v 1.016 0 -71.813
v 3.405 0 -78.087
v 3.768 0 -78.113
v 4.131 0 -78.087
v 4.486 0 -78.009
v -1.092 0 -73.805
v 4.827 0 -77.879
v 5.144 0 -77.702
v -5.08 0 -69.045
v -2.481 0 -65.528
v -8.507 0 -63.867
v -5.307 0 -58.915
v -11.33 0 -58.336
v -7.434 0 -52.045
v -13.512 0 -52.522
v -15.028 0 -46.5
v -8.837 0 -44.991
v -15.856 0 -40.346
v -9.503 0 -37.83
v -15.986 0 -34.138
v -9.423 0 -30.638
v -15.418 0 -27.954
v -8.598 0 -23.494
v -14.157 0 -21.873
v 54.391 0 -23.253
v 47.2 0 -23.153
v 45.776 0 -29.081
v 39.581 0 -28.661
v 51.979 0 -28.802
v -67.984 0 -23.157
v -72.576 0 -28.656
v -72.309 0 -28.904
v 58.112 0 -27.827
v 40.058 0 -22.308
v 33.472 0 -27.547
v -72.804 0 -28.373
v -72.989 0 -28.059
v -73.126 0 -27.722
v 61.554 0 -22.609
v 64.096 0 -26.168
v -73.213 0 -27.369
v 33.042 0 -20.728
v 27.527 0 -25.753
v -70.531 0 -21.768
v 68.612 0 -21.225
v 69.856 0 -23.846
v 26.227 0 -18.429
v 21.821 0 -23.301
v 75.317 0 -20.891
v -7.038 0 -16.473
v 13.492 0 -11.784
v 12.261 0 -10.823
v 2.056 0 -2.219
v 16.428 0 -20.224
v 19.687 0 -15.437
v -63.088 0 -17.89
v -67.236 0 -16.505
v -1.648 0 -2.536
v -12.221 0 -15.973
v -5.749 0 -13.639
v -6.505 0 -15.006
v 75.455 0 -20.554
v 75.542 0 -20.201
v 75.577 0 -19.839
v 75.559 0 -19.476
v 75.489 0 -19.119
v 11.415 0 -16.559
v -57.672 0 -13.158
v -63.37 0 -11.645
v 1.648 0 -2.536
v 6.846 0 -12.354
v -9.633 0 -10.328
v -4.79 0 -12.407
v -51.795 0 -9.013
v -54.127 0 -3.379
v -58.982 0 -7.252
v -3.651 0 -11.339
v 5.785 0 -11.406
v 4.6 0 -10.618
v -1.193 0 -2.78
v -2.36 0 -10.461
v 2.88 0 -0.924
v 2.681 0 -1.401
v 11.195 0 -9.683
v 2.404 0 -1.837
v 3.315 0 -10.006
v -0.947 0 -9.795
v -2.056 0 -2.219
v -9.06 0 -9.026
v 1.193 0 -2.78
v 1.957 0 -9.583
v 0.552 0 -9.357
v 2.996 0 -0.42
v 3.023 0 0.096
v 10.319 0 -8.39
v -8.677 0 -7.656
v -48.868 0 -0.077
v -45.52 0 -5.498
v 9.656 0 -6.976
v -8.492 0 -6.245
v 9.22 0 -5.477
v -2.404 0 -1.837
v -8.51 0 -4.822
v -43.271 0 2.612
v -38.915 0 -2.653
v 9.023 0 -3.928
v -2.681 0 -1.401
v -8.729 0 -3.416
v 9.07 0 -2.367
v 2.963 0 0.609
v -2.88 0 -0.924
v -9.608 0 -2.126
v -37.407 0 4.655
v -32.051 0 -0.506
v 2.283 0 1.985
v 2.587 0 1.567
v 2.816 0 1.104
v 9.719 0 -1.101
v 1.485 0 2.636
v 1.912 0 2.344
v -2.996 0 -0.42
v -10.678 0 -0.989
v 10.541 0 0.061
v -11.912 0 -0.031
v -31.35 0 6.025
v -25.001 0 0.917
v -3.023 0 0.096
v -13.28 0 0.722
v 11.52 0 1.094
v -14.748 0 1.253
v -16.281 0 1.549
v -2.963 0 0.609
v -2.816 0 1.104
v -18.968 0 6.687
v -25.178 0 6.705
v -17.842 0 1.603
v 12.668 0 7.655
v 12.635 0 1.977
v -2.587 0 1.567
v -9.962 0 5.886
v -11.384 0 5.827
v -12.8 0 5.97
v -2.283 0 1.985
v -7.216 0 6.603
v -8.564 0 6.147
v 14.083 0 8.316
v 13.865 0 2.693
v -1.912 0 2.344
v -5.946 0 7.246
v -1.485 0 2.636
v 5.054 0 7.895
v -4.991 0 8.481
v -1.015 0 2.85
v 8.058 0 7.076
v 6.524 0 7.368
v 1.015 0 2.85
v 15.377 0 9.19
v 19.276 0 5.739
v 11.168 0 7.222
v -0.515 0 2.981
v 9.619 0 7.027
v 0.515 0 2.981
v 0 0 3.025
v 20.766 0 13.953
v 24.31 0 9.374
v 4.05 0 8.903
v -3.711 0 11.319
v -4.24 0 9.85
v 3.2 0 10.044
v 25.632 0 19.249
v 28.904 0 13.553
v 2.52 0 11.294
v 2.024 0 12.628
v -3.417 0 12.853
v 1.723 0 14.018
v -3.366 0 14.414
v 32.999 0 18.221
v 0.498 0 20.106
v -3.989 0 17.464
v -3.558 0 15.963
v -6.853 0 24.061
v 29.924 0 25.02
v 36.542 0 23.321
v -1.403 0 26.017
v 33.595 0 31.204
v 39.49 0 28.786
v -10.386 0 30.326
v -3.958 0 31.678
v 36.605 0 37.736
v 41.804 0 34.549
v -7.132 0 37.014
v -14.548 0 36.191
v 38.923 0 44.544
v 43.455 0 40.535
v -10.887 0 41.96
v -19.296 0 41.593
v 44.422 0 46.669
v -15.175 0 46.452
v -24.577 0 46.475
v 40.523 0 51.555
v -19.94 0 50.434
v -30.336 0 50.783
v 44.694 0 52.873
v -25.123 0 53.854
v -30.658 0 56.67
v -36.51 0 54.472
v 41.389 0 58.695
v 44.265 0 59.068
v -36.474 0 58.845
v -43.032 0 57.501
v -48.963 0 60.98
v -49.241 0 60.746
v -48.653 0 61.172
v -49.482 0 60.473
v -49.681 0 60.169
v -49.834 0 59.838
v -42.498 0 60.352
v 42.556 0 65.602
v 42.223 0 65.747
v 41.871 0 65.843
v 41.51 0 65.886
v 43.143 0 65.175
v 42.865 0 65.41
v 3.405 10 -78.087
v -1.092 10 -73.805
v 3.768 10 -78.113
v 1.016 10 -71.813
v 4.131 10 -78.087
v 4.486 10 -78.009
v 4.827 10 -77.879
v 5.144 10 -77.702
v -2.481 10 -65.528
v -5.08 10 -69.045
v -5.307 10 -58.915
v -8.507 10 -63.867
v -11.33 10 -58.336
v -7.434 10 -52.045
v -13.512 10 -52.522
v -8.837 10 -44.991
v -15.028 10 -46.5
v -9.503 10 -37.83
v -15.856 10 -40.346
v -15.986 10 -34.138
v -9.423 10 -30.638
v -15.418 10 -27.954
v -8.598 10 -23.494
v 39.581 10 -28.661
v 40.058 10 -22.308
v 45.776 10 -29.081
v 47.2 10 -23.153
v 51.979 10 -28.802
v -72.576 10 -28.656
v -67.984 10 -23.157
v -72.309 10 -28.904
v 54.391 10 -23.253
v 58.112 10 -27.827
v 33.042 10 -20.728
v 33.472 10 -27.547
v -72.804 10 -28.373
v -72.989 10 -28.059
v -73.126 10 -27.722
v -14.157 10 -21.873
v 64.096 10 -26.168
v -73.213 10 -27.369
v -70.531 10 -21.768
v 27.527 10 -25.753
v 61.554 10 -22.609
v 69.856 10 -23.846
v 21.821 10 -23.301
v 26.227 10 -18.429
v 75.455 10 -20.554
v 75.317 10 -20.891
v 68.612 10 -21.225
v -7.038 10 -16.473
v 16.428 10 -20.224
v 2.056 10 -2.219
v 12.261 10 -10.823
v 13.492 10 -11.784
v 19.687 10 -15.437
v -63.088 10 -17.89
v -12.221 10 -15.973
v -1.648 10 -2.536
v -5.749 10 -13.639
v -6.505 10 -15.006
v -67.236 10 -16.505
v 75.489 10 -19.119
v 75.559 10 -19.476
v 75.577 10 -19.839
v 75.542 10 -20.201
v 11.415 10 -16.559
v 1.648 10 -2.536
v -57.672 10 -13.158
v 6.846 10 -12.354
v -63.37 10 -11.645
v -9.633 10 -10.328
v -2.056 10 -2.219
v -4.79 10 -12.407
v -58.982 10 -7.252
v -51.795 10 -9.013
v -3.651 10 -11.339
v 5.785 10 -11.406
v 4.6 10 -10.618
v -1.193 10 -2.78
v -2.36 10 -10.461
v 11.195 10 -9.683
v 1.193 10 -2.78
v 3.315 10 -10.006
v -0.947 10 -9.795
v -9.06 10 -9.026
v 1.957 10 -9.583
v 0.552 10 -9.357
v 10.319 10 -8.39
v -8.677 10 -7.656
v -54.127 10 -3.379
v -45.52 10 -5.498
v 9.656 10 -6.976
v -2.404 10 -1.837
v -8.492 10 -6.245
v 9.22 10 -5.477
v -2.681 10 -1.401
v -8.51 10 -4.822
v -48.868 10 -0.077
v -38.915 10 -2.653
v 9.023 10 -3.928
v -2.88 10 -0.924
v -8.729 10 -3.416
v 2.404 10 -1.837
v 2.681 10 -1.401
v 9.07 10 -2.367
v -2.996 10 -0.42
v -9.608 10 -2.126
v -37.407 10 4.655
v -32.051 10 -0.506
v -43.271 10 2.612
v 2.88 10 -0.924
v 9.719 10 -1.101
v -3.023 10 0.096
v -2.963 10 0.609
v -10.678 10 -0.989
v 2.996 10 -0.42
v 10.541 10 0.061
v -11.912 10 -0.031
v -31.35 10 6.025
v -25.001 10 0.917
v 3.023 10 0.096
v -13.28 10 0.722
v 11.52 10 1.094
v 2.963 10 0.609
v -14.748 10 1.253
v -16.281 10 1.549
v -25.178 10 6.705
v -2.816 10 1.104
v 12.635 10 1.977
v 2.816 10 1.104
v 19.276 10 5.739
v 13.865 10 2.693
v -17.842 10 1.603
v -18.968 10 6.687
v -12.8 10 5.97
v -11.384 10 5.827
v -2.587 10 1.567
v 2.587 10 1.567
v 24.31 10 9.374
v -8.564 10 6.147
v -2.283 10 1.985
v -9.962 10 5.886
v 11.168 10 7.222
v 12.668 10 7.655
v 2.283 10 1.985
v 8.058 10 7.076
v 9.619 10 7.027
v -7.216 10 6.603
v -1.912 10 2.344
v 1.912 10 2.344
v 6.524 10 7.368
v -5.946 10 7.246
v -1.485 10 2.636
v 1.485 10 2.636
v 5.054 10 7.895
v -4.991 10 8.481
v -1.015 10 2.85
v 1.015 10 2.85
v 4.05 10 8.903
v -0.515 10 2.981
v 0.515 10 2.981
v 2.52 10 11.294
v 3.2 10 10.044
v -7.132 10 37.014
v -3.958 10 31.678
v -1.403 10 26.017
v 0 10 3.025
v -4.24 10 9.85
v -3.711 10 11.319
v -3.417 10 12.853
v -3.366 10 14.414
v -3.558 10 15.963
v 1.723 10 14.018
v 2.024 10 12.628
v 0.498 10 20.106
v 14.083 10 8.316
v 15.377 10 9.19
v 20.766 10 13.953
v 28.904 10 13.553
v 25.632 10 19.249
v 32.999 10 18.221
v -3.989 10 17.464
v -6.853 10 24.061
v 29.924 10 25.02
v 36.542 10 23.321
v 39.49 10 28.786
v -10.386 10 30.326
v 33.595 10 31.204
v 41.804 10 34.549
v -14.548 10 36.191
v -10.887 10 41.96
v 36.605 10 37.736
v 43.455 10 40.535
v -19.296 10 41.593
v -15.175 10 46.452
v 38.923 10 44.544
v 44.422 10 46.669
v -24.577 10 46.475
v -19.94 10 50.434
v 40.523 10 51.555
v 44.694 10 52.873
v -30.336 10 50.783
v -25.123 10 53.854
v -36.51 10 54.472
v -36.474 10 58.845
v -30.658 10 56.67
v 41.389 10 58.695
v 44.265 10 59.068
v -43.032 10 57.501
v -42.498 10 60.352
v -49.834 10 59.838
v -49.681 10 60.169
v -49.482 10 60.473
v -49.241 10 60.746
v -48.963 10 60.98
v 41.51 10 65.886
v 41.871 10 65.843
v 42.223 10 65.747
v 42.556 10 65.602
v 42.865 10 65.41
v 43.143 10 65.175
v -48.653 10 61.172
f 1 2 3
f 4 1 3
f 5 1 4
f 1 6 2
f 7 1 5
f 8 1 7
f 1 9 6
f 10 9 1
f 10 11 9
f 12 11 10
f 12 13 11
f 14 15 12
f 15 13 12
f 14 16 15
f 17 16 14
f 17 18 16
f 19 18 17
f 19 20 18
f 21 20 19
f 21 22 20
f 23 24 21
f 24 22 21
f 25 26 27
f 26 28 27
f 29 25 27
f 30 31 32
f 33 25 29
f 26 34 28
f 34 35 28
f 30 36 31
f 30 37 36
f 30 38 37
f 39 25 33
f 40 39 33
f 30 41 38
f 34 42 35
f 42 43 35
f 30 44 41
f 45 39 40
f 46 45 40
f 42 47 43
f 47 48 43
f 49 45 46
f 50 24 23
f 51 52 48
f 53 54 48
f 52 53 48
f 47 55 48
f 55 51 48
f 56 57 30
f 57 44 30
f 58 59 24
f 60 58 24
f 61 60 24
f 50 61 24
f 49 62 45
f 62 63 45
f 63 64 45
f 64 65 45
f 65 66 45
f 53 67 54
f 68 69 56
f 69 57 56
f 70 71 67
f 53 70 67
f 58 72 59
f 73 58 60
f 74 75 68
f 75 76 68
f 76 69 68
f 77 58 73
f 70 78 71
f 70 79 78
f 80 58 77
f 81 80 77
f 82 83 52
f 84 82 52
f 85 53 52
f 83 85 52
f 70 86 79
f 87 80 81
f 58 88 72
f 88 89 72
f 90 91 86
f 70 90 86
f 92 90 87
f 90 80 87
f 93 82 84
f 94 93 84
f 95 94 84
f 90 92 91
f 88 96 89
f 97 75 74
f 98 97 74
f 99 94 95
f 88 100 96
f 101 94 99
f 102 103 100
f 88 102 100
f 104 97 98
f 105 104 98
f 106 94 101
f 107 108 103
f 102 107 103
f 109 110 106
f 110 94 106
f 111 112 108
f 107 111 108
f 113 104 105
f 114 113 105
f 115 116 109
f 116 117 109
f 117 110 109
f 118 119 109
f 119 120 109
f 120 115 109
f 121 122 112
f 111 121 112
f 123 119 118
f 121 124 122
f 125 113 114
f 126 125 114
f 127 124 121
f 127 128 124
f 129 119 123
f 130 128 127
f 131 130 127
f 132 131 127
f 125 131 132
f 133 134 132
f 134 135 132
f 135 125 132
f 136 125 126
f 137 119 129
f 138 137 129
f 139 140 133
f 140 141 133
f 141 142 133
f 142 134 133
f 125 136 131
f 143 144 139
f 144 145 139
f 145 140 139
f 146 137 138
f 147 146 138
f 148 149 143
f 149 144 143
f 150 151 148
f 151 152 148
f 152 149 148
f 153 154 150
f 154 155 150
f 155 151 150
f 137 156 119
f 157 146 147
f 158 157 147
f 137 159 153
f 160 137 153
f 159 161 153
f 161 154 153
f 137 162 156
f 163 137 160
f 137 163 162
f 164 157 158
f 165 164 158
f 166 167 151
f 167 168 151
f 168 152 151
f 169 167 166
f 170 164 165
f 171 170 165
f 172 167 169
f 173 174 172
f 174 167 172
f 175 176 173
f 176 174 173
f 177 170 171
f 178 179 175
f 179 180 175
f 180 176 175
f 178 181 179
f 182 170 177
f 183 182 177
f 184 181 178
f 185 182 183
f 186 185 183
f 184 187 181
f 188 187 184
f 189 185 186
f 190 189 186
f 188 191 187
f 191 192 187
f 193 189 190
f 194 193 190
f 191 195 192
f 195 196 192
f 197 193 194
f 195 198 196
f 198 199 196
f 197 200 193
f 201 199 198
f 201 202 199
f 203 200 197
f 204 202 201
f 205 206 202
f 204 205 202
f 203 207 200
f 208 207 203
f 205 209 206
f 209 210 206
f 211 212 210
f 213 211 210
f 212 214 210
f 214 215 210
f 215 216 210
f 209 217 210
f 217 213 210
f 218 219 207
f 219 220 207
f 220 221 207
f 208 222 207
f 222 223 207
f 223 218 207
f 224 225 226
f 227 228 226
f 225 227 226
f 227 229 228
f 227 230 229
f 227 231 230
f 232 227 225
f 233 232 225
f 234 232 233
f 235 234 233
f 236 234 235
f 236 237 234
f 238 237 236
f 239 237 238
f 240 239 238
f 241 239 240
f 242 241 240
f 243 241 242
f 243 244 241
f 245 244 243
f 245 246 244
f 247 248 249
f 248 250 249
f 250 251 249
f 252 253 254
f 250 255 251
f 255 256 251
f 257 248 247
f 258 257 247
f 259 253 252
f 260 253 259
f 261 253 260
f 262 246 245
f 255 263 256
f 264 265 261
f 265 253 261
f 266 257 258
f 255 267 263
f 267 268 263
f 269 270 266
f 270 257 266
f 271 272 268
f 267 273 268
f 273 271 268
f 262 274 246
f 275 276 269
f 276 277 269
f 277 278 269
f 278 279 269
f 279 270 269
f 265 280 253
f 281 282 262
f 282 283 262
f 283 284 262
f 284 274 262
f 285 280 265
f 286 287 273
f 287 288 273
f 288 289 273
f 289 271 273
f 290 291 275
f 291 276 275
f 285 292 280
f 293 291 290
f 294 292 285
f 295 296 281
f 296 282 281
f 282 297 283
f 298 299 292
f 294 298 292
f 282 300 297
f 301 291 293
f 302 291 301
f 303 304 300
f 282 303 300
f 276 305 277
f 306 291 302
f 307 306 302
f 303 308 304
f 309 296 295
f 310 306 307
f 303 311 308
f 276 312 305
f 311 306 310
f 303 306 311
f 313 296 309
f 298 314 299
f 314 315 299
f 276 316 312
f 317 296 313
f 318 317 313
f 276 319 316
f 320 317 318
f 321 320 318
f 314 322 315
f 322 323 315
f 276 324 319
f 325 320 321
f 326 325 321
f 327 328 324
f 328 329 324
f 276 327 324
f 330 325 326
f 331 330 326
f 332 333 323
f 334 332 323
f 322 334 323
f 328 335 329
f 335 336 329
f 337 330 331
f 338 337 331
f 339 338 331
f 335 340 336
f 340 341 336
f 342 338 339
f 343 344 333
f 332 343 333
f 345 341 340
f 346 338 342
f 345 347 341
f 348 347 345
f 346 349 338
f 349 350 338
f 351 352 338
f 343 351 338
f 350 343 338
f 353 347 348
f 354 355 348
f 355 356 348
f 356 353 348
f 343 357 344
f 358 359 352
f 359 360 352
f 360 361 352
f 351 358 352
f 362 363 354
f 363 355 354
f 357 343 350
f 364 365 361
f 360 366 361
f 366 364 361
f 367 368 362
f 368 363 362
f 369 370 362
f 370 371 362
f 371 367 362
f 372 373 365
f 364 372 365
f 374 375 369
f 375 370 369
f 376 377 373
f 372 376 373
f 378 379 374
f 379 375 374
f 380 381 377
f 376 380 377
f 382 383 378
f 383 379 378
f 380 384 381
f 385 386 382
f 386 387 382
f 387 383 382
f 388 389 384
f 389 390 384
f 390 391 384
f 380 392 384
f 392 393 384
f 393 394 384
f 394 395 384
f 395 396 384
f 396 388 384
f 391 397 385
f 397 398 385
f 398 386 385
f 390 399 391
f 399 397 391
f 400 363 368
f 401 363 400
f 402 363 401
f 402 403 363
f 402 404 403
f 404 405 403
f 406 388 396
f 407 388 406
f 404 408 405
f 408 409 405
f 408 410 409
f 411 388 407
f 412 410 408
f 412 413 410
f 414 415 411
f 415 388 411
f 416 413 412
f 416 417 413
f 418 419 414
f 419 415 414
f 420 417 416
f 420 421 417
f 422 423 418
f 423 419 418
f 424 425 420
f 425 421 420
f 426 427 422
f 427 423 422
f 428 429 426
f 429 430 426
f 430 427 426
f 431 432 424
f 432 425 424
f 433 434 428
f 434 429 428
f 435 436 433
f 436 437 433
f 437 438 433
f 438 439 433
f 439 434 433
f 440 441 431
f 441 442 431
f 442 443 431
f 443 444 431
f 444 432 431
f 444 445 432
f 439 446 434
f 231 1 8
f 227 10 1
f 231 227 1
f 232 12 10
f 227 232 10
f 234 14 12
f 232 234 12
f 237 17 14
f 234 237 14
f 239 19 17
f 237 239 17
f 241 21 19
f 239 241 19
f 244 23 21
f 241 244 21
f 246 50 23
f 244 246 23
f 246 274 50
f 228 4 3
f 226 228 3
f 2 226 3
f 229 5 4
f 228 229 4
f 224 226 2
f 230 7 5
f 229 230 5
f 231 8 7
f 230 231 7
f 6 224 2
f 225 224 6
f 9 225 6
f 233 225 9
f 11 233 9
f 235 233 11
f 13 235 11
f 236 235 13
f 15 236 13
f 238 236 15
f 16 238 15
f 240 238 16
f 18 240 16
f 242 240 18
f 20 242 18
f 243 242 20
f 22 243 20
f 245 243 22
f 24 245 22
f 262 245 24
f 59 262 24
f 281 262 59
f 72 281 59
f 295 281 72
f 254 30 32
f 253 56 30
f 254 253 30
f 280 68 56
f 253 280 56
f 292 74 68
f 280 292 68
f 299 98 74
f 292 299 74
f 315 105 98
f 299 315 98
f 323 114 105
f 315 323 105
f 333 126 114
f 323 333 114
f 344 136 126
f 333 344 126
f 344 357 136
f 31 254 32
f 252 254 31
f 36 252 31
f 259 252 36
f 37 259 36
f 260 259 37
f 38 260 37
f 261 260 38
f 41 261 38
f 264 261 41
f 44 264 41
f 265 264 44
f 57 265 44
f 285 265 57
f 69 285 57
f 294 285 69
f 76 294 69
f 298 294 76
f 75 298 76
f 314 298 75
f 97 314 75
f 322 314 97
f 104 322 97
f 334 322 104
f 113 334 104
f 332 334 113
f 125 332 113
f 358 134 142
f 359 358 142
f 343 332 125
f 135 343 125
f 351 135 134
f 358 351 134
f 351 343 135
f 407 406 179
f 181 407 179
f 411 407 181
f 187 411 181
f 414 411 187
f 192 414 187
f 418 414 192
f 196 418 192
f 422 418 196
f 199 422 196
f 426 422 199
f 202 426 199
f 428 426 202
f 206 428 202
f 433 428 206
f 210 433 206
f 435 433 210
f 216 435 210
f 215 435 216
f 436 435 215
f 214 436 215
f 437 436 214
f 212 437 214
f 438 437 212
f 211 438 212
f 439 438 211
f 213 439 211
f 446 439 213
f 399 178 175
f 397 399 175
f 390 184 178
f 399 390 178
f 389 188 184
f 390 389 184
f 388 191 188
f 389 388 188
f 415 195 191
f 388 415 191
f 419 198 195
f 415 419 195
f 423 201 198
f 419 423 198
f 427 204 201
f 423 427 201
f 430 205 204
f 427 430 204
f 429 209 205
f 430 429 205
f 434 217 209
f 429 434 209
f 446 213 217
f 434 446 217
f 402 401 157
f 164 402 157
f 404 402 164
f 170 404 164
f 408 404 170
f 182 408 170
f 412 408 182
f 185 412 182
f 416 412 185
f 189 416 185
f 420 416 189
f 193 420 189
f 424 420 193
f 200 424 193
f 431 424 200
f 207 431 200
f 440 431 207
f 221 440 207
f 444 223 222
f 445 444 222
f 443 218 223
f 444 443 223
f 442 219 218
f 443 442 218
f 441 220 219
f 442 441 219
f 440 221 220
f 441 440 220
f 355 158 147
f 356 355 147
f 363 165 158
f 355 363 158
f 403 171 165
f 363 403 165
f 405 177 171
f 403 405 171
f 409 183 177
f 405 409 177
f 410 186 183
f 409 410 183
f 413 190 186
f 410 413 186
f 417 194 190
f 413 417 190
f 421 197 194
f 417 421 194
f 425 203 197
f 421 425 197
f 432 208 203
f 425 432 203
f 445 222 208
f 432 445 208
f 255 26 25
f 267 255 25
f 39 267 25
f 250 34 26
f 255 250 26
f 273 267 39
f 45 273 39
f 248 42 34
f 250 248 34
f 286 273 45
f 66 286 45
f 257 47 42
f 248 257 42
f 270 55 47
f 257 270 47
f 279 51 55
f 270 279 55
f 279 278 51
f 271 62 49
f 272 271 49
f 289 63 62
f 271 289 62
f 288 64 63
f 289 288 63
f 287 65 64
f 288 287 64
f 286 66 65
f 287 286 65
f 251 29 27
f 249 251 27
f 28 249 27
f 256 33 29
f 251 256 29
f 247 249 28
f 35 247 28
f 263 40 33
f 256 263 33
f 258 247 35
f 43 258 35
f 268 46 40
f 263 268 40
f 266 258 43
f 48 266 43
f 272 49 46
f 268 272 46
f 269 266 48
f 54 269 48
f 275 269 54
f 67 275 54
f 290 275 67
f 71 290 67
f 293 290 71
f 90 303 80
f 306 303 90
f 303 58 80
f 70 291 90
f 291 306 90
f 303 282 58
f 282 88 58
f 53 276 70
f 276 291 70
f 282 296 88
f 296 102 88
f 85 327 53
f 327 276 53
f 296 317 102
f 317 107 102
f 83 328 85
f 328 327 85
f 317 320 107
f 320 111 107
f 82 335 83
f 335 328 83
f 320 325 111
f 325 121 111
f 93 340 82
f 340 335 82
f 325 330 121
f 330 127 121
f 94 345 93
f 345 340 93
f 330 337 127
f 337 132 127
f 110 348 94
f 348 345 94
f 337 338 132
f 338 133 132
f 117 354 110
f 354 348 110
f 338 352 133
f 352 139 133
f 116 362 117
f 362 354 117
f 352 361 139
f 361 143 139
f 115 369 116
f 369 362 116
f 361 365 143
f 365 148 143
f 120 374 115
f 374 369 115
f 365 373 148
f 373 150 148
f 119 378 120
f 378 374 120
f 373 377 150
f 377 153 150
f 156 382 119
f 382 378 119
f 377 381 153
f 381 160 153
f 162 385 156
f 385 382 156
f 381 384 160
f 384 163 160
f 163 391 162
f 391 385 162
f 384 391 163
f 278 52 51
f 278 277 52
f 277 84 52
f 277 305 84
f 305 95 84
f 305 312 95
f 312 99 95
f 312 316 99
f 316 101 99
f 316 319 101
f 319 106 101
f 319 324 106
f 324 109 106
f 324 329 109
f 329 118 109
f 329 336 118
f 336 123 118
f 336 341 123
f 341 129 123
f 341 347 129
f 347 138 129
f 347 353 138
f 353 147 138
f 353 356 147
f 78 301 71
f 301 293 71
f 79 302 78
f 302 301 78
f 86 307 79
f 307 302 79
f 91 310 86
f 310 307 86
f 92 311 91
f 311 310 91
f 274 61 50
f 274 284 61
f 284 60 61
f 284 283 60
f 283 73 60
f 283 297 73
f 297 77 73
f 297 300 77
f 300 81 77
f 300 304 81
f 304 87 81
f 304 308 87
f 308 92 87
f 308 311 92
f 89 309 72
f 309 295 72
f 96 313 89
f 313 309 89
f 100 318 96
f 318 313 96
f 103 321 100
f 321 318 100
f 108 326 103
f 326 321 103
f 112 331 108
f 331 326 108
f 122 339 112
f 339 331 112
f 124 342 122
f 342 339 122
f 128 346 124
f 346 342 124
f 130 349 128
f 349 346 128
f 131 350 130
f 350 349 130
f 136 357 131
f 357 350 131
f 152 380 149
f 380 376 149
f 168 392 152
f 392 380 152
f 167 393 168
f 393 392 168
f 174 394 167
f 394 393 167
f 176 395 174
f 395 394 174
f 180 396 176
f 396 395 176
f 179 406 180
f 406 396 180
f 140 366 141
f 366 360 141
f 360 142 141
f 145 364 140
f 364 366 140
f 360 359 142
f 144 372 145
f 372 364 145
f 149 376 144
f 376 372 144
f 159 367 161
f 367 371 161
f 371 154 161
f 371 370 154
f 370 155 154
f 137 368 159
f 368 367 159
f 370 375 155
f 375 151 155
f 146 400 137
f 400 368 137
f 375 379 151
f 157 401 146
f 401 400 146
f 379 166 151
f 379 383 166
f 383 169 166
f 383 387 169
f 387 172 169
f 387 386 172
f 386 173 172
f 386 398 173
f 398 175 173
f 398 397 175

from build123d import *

# Parameters (mm, degrees)
BOSS_EXTRUDE4_DEPTH = 10
SKETCH5_R           = 1.6210620194390177
BOSS_EXTRUDE8_DEPTH = 10
CIRPATTERN4_COUNT   = 5
SKETCH6_R           = 9.321133181207394
BOSS_EXTRUDE9_DEPTH = 10
CUT_EXTRUDE1_DEPTH  = 10
FILLET1_R           = 10


with BuildPart() as part:
    # Sketch3 → Boss-Extrude4 (new body)
    with BuildSketch(Plane(origin=(0, 0, 0), x_dir=(1, 0, 0), z_dir=(0, 1, 0))):
        with BuildLine():
            ThreePointArc((-2.568584889231257, 0), (-15.859987880186992, 40.28882096120527), (3.4054490784254314, 78.086882111293))
            ThreePointArc((3.4054490784254314, 78.086882111293), (4.310285634950187, 78.05431633363062), (5.144295315107662, 77.70187119279029))
            ThreePointArc((5.144295315107662, 77.70187119279029), (-9.176823691930053, 42.2861657946719), (-2.568584889231257, 4.660405757344381))
            ThreePointArc((-2.568584889231257, 4.660405757344381), (-2.7066052458532077, 2.3302028786721882), (-2.568584889231257, 0))
        make_face()
    extrude(amount=BOSS_EXTRUDE4_DEPTH)


with BuildPart() as body_2:
    # Sketch5 → Boss-Extrude8 (new body)
    with BuildSketch(Plane(origin=(0, 0, 0), x_dir=(1, 0, 0), z_dir=(0, 1, 0))):
        with Locations(Location((0, 0, 0), (0, 0, 270))):
            Circle(SKETCH5_R)
    extrude(amount=BOSS_EXTRUDE8_DEPTH)


with BuildPart() as cirpattern4_1:
    # CirPattern4: pattern copy
    add(part.part.rotate(Axis((-3.4e-16, 0, -5.8e-16), (0, 1, 0)), 1 * 360 / CIRPATTERN4_COUNT))


with BuildPart() as cirpattern4_2:
    # CirPattern4: pattern copy
    add(part.part.rotate(Axis((-3.4e-16, 0, -5.8e-16), (0, 1, 0)), 2 * 360 / CIRPATTERN4_COUNT))


with BuildPart() as cirpattern4_3:
    # CirPattern4: pattern copy
    add(part.part.rotate(Axis((-3.4e-16, 0, -5.8e-16), (0, 1, 0)), 3 * 360 / CIRPATTERN4_COUNT))


with BuildPart() as cirpattern4_4:
    # CirPattern4: pattern copy
    add(part.part.rotate(Axis((-3.4e-16, 0, -5.8e-16), (0, 1, 0)), 4 * 360 / CIRPATTERN4_COUNT))


with BuildPart() as part_1:
    add(part.part)

    add(body_2.part)  # Boss-Extrude9 merges body 2

    add(cirpattern4_1.part)  # Boss-Extrude9 merges CirPattern4_1

    add(cirpattern4_2.part)  # Boss-Extrude9 merges CirPattern4_2

    add(cirpattern4_3.part)  # Boss-Extrude9 merges CirPattern4_3

    add(cirpattern4_4.part)  # Boss-Extrude9 merges CirPattern4_4
    # Sketch6 → Boss-Extrude9 (add)
    with BuildSketch(Plane(origin=(0, 10, 0), x_dir=(1, 0, 0), z_dir=(0, 1, 0))):
        Circle(SKETCH6_R)
    extrude(amount=-BOSS_EXTRUDE9_DEPTH)

    # Sketch7 → Cut-Extrude1 (cut)
    with BuildSketch(Plane(origin=(0, 10, 0), x_dir=(1, 0, 0), z_dir=(0, 1, 0))):
        with BuildLine():
            Line((1.1925707526180573, 2.78), (-1.1925707526180573, 2.78))
            ThreePointArc((-1.1925707526180578, 2.78), (-1.6647970556993392, -2.5256832270367577), (3.025, -7.4e-16))
            ThreePointArc((3.025, 0), (2.5256832270367577, 1.6647970556993388), (1.1925707526180576, 2.78))
        make_face()
    extrude(amount=-CUT_EXTRUDE1_DEPTH, mode=Mode.SUBTRACT)

    # Fillet1
    # the kernel refuses this fillet: 10 mm, written as the material it adds along each edge
    with BuildSketch(Plane(origin=(9.294704214468556, 10, 0.7014252257691618), x_dir=(0.9166930954116449, 0, 0.399592002953784), z_dir=(0, -1, 0))) as fillet1_piece_1:
        with BuildLine():
            CenterArc((5.437298438361188, -9.98977111966082), FILLET1_R, 92.59172373372462, 44.87729573930281)
            ThreePointArc((-1.9318208534579913, -3.2298834828033556), (-0.8012017224871335, -1.713455421939968), (0, 0))
            ThreePointArc((0, 0), (2.4925557778833074, -0.0563838885471548), (4.985111555766614, 2e-17))
        make_face()
    extrude(amount=10)
    with BuildSketch(Plane(origin=(6.60253368503394, 10, -6.579519186065028), x_dir=(0.46308073985482195, 0, 0.8863160995804548), z_dir=(0, -1, 0))) as fillet1_piece_2:
        with BuildLine():
            CenterArc((8.524117810925986, -9.546886996079968), FILLET1_R, 107.3138862206167, 66.77214806671216)
            ThreePointArc((-1.4226595103454045, -8.516537093842318), (-0.8440182810230222, -4.236103365094945), (0, 0))
            ThreePointArc((0, 0), (2.774027598326007, -0.42235266556755513), (5.548055196652016, 2e-17))
        make_face()
    extrude(amount=10)
    with BuildSketch(Plane(origin=(-4.2171994813875955, 10, -8.31256592851991), x_dir=(-0.3267162956046077, 0, -0.9451224588308135), z_dir=(0, -1, 0))) as fillet1_piece_3:
        with BuildLine():
            CenterArc((8.011945209416133, 9.980599667944867), FILLET1_R, 206.79739354469726, 66.7721480667119)
            ThreePointArc((-0.9141180755940358, 5.47223031395517), (-0.04047863659748981, 2.805703542850818), (0, 0))
            ThreePointArc((0, 0), (4.317272407237243, -0.13452709830263468), (8.634544814474475, -3.1e-16))
        make_face()
    extrude(amount=10)
    with BuildSketch(Plane(origin=(3.539316591620801, 10, -8.623036695160394), x_dir=(-0.9827141698360341, 0, -0.18512930725164625), z_dir=(0, -1, 0))) as fillet1_piece_4:
        with BuildLine():
            CenterArc((5.782329586263011, 9.794100565483701), FILLET1_R, 213.47572744282695, 44.87729573930915)
            ThreePointArc((-2.5588660900526423, 4.278263848410483), (-1.2310439268876425, 2.1680738683956533), (0, 0))
            ThreePointArc((0, 0), (1.881759756341037, 0.19192160510617215), (3.7635195126820715, -5e-17))
        make_face()
    extrude(amount=10)
    with BuildSketch(Plane(origin=(-9.208906301869895, 10, 1.4420709085153902), x_dir=(-0.9998257608489958, 0, 0.018666760370418967), z_dir=(0, -1, 0))) as fillet1_piece_5:
        with BuildLine():
            CenterArc((8.011945209416153, 9.980599667944865), FILLET1_R, 206.79739354469731, 66.7721480667119)
            ThreePointArc((-0.9141180755940117, 5.472230313955157), (-0.04047863659747148, 2.8057035428508104), (0, 0))
            ThreePointArc((0, 0), (4.317272407237252, -0.13452709830265147), (8.634544814474507, -2e-17))
        make_face()
    extrude(amount=10)
    with BuildSketch(Plane(origin=(-7.1072862639004715, 10, -6.030754989615849), x_dir=(-0.47974381311129005, 0, 0.8774086127805217), z_dir=(0, -1, 0))) as fillet1_piece_6:
        with BuildLine():
            CenterArc((5.782329586263038, 9.794100565483692), FILLET1_R, 213.47572744282687, 44.877295739309034)
            ThreePointArc((-2.5588660900526223, 4.278263848410486), (-1.2310439268876405, 2.168073868395652), (0, 0))
            ThreePointArc((0, 0), (1.8817597563410384, 0.19192160510617853), (3.763519512682072, -7e-17))
        make_face()
    extrude(amount=10)
    with BuildSketch(Plane(origin=(-7.931861070486542, 10, 4.895825133754791), x_dir=(-0.9764945790844407, 0, 0.21554196115536567), z_dir=(0, -1, 0))) as fillet1_piece_7:
        with BuildLine():
            CenterArc((5.43729843836118, -9.989771119660821), FILLET1_R, 92.59172373372459, 44.877295739302724)
            ThreePointArc((-1.9318208534579884, -3.2298834828033454), (-0.801201722487141, -1.7134554219399574), (0, 0))
            ThreePointArc((0, 0), (2.492555777883305, -0.05638388854715234), (4.985111555766614, 5e-17))
        make_face()
    extrude(amount=10)
    with BuildSketch(Plane(origin=(-1.4742176123811461, 10, 9.203814764169852), x_dir=(-0.8956037205130516, 0, -0.44485275744135816), z_dir=(0, -1, 0))) as fillet1_piece_8:
        with BuildLine():
            CenterArc((8.524117810925947, -9.546886996079973), FILLET1_R, 107.31388622061658, 66.77214806671205)
            ThreePointArc((-1.422659510345439, -8.516537093842285), (-0.8440182810230522, -4.236103365094935), (0, 0))
            ThreePointArc((0, 0), (2.774027598325997, -0.42235266556755147), (5.548055196651995, 2.3e-16))
        make_face()
    extrude(amount=10)
    with BuildSketch(Plane(origin=(2.2051265282976815, 10, 9.056541325252308), x_dir=(-0.0967608331602571, 0, 0.9953076615630632), z_dir=(0, -1, 0))) as fillet1_piece_9:
        with BuildLine():
            CenterArc((5.437298438361169, -9.989771119660823), FILLET1_R, 92.59172373372452, 44.87729573930274)
            ThreePointArc((-1.9318208534579957, -3.229883482803339), (-0.8012017224871391, -1.7134554219399516), (0, 0))
            ThreePointArc((0, 0), (2.4925557778833074, -0.05638388854715363), (4.985111555766614, 3e-17))
        make_face()
    extrude(amount=10)
    with BuildSketch(Plane(origin=(8.297789710604665, 10, 4.2461994418996625), x_dir=(-0.6998368836204316, 0, 0.7143026923681881), z_dir=(0, -1, 0))) as fillet1_piece_10:
        with BuildLine():
            CenterArc((8.52411781092599, -9.546886996079968), FILLET1_R, 107.3138862206167, 66.77214806671219)
            ThreePointArc((-1.4226595103454007, -8.516537093842324), (-0.8440182810230218, -4.236103365094961), (0, 0))
            ThreePointArc((0, 0), (2.774027598326008, -0.4223526655675579), (5.548055196652019, 1.7e-16))
        make_face()
    extrude(amount=10)


solid = part_1.part
